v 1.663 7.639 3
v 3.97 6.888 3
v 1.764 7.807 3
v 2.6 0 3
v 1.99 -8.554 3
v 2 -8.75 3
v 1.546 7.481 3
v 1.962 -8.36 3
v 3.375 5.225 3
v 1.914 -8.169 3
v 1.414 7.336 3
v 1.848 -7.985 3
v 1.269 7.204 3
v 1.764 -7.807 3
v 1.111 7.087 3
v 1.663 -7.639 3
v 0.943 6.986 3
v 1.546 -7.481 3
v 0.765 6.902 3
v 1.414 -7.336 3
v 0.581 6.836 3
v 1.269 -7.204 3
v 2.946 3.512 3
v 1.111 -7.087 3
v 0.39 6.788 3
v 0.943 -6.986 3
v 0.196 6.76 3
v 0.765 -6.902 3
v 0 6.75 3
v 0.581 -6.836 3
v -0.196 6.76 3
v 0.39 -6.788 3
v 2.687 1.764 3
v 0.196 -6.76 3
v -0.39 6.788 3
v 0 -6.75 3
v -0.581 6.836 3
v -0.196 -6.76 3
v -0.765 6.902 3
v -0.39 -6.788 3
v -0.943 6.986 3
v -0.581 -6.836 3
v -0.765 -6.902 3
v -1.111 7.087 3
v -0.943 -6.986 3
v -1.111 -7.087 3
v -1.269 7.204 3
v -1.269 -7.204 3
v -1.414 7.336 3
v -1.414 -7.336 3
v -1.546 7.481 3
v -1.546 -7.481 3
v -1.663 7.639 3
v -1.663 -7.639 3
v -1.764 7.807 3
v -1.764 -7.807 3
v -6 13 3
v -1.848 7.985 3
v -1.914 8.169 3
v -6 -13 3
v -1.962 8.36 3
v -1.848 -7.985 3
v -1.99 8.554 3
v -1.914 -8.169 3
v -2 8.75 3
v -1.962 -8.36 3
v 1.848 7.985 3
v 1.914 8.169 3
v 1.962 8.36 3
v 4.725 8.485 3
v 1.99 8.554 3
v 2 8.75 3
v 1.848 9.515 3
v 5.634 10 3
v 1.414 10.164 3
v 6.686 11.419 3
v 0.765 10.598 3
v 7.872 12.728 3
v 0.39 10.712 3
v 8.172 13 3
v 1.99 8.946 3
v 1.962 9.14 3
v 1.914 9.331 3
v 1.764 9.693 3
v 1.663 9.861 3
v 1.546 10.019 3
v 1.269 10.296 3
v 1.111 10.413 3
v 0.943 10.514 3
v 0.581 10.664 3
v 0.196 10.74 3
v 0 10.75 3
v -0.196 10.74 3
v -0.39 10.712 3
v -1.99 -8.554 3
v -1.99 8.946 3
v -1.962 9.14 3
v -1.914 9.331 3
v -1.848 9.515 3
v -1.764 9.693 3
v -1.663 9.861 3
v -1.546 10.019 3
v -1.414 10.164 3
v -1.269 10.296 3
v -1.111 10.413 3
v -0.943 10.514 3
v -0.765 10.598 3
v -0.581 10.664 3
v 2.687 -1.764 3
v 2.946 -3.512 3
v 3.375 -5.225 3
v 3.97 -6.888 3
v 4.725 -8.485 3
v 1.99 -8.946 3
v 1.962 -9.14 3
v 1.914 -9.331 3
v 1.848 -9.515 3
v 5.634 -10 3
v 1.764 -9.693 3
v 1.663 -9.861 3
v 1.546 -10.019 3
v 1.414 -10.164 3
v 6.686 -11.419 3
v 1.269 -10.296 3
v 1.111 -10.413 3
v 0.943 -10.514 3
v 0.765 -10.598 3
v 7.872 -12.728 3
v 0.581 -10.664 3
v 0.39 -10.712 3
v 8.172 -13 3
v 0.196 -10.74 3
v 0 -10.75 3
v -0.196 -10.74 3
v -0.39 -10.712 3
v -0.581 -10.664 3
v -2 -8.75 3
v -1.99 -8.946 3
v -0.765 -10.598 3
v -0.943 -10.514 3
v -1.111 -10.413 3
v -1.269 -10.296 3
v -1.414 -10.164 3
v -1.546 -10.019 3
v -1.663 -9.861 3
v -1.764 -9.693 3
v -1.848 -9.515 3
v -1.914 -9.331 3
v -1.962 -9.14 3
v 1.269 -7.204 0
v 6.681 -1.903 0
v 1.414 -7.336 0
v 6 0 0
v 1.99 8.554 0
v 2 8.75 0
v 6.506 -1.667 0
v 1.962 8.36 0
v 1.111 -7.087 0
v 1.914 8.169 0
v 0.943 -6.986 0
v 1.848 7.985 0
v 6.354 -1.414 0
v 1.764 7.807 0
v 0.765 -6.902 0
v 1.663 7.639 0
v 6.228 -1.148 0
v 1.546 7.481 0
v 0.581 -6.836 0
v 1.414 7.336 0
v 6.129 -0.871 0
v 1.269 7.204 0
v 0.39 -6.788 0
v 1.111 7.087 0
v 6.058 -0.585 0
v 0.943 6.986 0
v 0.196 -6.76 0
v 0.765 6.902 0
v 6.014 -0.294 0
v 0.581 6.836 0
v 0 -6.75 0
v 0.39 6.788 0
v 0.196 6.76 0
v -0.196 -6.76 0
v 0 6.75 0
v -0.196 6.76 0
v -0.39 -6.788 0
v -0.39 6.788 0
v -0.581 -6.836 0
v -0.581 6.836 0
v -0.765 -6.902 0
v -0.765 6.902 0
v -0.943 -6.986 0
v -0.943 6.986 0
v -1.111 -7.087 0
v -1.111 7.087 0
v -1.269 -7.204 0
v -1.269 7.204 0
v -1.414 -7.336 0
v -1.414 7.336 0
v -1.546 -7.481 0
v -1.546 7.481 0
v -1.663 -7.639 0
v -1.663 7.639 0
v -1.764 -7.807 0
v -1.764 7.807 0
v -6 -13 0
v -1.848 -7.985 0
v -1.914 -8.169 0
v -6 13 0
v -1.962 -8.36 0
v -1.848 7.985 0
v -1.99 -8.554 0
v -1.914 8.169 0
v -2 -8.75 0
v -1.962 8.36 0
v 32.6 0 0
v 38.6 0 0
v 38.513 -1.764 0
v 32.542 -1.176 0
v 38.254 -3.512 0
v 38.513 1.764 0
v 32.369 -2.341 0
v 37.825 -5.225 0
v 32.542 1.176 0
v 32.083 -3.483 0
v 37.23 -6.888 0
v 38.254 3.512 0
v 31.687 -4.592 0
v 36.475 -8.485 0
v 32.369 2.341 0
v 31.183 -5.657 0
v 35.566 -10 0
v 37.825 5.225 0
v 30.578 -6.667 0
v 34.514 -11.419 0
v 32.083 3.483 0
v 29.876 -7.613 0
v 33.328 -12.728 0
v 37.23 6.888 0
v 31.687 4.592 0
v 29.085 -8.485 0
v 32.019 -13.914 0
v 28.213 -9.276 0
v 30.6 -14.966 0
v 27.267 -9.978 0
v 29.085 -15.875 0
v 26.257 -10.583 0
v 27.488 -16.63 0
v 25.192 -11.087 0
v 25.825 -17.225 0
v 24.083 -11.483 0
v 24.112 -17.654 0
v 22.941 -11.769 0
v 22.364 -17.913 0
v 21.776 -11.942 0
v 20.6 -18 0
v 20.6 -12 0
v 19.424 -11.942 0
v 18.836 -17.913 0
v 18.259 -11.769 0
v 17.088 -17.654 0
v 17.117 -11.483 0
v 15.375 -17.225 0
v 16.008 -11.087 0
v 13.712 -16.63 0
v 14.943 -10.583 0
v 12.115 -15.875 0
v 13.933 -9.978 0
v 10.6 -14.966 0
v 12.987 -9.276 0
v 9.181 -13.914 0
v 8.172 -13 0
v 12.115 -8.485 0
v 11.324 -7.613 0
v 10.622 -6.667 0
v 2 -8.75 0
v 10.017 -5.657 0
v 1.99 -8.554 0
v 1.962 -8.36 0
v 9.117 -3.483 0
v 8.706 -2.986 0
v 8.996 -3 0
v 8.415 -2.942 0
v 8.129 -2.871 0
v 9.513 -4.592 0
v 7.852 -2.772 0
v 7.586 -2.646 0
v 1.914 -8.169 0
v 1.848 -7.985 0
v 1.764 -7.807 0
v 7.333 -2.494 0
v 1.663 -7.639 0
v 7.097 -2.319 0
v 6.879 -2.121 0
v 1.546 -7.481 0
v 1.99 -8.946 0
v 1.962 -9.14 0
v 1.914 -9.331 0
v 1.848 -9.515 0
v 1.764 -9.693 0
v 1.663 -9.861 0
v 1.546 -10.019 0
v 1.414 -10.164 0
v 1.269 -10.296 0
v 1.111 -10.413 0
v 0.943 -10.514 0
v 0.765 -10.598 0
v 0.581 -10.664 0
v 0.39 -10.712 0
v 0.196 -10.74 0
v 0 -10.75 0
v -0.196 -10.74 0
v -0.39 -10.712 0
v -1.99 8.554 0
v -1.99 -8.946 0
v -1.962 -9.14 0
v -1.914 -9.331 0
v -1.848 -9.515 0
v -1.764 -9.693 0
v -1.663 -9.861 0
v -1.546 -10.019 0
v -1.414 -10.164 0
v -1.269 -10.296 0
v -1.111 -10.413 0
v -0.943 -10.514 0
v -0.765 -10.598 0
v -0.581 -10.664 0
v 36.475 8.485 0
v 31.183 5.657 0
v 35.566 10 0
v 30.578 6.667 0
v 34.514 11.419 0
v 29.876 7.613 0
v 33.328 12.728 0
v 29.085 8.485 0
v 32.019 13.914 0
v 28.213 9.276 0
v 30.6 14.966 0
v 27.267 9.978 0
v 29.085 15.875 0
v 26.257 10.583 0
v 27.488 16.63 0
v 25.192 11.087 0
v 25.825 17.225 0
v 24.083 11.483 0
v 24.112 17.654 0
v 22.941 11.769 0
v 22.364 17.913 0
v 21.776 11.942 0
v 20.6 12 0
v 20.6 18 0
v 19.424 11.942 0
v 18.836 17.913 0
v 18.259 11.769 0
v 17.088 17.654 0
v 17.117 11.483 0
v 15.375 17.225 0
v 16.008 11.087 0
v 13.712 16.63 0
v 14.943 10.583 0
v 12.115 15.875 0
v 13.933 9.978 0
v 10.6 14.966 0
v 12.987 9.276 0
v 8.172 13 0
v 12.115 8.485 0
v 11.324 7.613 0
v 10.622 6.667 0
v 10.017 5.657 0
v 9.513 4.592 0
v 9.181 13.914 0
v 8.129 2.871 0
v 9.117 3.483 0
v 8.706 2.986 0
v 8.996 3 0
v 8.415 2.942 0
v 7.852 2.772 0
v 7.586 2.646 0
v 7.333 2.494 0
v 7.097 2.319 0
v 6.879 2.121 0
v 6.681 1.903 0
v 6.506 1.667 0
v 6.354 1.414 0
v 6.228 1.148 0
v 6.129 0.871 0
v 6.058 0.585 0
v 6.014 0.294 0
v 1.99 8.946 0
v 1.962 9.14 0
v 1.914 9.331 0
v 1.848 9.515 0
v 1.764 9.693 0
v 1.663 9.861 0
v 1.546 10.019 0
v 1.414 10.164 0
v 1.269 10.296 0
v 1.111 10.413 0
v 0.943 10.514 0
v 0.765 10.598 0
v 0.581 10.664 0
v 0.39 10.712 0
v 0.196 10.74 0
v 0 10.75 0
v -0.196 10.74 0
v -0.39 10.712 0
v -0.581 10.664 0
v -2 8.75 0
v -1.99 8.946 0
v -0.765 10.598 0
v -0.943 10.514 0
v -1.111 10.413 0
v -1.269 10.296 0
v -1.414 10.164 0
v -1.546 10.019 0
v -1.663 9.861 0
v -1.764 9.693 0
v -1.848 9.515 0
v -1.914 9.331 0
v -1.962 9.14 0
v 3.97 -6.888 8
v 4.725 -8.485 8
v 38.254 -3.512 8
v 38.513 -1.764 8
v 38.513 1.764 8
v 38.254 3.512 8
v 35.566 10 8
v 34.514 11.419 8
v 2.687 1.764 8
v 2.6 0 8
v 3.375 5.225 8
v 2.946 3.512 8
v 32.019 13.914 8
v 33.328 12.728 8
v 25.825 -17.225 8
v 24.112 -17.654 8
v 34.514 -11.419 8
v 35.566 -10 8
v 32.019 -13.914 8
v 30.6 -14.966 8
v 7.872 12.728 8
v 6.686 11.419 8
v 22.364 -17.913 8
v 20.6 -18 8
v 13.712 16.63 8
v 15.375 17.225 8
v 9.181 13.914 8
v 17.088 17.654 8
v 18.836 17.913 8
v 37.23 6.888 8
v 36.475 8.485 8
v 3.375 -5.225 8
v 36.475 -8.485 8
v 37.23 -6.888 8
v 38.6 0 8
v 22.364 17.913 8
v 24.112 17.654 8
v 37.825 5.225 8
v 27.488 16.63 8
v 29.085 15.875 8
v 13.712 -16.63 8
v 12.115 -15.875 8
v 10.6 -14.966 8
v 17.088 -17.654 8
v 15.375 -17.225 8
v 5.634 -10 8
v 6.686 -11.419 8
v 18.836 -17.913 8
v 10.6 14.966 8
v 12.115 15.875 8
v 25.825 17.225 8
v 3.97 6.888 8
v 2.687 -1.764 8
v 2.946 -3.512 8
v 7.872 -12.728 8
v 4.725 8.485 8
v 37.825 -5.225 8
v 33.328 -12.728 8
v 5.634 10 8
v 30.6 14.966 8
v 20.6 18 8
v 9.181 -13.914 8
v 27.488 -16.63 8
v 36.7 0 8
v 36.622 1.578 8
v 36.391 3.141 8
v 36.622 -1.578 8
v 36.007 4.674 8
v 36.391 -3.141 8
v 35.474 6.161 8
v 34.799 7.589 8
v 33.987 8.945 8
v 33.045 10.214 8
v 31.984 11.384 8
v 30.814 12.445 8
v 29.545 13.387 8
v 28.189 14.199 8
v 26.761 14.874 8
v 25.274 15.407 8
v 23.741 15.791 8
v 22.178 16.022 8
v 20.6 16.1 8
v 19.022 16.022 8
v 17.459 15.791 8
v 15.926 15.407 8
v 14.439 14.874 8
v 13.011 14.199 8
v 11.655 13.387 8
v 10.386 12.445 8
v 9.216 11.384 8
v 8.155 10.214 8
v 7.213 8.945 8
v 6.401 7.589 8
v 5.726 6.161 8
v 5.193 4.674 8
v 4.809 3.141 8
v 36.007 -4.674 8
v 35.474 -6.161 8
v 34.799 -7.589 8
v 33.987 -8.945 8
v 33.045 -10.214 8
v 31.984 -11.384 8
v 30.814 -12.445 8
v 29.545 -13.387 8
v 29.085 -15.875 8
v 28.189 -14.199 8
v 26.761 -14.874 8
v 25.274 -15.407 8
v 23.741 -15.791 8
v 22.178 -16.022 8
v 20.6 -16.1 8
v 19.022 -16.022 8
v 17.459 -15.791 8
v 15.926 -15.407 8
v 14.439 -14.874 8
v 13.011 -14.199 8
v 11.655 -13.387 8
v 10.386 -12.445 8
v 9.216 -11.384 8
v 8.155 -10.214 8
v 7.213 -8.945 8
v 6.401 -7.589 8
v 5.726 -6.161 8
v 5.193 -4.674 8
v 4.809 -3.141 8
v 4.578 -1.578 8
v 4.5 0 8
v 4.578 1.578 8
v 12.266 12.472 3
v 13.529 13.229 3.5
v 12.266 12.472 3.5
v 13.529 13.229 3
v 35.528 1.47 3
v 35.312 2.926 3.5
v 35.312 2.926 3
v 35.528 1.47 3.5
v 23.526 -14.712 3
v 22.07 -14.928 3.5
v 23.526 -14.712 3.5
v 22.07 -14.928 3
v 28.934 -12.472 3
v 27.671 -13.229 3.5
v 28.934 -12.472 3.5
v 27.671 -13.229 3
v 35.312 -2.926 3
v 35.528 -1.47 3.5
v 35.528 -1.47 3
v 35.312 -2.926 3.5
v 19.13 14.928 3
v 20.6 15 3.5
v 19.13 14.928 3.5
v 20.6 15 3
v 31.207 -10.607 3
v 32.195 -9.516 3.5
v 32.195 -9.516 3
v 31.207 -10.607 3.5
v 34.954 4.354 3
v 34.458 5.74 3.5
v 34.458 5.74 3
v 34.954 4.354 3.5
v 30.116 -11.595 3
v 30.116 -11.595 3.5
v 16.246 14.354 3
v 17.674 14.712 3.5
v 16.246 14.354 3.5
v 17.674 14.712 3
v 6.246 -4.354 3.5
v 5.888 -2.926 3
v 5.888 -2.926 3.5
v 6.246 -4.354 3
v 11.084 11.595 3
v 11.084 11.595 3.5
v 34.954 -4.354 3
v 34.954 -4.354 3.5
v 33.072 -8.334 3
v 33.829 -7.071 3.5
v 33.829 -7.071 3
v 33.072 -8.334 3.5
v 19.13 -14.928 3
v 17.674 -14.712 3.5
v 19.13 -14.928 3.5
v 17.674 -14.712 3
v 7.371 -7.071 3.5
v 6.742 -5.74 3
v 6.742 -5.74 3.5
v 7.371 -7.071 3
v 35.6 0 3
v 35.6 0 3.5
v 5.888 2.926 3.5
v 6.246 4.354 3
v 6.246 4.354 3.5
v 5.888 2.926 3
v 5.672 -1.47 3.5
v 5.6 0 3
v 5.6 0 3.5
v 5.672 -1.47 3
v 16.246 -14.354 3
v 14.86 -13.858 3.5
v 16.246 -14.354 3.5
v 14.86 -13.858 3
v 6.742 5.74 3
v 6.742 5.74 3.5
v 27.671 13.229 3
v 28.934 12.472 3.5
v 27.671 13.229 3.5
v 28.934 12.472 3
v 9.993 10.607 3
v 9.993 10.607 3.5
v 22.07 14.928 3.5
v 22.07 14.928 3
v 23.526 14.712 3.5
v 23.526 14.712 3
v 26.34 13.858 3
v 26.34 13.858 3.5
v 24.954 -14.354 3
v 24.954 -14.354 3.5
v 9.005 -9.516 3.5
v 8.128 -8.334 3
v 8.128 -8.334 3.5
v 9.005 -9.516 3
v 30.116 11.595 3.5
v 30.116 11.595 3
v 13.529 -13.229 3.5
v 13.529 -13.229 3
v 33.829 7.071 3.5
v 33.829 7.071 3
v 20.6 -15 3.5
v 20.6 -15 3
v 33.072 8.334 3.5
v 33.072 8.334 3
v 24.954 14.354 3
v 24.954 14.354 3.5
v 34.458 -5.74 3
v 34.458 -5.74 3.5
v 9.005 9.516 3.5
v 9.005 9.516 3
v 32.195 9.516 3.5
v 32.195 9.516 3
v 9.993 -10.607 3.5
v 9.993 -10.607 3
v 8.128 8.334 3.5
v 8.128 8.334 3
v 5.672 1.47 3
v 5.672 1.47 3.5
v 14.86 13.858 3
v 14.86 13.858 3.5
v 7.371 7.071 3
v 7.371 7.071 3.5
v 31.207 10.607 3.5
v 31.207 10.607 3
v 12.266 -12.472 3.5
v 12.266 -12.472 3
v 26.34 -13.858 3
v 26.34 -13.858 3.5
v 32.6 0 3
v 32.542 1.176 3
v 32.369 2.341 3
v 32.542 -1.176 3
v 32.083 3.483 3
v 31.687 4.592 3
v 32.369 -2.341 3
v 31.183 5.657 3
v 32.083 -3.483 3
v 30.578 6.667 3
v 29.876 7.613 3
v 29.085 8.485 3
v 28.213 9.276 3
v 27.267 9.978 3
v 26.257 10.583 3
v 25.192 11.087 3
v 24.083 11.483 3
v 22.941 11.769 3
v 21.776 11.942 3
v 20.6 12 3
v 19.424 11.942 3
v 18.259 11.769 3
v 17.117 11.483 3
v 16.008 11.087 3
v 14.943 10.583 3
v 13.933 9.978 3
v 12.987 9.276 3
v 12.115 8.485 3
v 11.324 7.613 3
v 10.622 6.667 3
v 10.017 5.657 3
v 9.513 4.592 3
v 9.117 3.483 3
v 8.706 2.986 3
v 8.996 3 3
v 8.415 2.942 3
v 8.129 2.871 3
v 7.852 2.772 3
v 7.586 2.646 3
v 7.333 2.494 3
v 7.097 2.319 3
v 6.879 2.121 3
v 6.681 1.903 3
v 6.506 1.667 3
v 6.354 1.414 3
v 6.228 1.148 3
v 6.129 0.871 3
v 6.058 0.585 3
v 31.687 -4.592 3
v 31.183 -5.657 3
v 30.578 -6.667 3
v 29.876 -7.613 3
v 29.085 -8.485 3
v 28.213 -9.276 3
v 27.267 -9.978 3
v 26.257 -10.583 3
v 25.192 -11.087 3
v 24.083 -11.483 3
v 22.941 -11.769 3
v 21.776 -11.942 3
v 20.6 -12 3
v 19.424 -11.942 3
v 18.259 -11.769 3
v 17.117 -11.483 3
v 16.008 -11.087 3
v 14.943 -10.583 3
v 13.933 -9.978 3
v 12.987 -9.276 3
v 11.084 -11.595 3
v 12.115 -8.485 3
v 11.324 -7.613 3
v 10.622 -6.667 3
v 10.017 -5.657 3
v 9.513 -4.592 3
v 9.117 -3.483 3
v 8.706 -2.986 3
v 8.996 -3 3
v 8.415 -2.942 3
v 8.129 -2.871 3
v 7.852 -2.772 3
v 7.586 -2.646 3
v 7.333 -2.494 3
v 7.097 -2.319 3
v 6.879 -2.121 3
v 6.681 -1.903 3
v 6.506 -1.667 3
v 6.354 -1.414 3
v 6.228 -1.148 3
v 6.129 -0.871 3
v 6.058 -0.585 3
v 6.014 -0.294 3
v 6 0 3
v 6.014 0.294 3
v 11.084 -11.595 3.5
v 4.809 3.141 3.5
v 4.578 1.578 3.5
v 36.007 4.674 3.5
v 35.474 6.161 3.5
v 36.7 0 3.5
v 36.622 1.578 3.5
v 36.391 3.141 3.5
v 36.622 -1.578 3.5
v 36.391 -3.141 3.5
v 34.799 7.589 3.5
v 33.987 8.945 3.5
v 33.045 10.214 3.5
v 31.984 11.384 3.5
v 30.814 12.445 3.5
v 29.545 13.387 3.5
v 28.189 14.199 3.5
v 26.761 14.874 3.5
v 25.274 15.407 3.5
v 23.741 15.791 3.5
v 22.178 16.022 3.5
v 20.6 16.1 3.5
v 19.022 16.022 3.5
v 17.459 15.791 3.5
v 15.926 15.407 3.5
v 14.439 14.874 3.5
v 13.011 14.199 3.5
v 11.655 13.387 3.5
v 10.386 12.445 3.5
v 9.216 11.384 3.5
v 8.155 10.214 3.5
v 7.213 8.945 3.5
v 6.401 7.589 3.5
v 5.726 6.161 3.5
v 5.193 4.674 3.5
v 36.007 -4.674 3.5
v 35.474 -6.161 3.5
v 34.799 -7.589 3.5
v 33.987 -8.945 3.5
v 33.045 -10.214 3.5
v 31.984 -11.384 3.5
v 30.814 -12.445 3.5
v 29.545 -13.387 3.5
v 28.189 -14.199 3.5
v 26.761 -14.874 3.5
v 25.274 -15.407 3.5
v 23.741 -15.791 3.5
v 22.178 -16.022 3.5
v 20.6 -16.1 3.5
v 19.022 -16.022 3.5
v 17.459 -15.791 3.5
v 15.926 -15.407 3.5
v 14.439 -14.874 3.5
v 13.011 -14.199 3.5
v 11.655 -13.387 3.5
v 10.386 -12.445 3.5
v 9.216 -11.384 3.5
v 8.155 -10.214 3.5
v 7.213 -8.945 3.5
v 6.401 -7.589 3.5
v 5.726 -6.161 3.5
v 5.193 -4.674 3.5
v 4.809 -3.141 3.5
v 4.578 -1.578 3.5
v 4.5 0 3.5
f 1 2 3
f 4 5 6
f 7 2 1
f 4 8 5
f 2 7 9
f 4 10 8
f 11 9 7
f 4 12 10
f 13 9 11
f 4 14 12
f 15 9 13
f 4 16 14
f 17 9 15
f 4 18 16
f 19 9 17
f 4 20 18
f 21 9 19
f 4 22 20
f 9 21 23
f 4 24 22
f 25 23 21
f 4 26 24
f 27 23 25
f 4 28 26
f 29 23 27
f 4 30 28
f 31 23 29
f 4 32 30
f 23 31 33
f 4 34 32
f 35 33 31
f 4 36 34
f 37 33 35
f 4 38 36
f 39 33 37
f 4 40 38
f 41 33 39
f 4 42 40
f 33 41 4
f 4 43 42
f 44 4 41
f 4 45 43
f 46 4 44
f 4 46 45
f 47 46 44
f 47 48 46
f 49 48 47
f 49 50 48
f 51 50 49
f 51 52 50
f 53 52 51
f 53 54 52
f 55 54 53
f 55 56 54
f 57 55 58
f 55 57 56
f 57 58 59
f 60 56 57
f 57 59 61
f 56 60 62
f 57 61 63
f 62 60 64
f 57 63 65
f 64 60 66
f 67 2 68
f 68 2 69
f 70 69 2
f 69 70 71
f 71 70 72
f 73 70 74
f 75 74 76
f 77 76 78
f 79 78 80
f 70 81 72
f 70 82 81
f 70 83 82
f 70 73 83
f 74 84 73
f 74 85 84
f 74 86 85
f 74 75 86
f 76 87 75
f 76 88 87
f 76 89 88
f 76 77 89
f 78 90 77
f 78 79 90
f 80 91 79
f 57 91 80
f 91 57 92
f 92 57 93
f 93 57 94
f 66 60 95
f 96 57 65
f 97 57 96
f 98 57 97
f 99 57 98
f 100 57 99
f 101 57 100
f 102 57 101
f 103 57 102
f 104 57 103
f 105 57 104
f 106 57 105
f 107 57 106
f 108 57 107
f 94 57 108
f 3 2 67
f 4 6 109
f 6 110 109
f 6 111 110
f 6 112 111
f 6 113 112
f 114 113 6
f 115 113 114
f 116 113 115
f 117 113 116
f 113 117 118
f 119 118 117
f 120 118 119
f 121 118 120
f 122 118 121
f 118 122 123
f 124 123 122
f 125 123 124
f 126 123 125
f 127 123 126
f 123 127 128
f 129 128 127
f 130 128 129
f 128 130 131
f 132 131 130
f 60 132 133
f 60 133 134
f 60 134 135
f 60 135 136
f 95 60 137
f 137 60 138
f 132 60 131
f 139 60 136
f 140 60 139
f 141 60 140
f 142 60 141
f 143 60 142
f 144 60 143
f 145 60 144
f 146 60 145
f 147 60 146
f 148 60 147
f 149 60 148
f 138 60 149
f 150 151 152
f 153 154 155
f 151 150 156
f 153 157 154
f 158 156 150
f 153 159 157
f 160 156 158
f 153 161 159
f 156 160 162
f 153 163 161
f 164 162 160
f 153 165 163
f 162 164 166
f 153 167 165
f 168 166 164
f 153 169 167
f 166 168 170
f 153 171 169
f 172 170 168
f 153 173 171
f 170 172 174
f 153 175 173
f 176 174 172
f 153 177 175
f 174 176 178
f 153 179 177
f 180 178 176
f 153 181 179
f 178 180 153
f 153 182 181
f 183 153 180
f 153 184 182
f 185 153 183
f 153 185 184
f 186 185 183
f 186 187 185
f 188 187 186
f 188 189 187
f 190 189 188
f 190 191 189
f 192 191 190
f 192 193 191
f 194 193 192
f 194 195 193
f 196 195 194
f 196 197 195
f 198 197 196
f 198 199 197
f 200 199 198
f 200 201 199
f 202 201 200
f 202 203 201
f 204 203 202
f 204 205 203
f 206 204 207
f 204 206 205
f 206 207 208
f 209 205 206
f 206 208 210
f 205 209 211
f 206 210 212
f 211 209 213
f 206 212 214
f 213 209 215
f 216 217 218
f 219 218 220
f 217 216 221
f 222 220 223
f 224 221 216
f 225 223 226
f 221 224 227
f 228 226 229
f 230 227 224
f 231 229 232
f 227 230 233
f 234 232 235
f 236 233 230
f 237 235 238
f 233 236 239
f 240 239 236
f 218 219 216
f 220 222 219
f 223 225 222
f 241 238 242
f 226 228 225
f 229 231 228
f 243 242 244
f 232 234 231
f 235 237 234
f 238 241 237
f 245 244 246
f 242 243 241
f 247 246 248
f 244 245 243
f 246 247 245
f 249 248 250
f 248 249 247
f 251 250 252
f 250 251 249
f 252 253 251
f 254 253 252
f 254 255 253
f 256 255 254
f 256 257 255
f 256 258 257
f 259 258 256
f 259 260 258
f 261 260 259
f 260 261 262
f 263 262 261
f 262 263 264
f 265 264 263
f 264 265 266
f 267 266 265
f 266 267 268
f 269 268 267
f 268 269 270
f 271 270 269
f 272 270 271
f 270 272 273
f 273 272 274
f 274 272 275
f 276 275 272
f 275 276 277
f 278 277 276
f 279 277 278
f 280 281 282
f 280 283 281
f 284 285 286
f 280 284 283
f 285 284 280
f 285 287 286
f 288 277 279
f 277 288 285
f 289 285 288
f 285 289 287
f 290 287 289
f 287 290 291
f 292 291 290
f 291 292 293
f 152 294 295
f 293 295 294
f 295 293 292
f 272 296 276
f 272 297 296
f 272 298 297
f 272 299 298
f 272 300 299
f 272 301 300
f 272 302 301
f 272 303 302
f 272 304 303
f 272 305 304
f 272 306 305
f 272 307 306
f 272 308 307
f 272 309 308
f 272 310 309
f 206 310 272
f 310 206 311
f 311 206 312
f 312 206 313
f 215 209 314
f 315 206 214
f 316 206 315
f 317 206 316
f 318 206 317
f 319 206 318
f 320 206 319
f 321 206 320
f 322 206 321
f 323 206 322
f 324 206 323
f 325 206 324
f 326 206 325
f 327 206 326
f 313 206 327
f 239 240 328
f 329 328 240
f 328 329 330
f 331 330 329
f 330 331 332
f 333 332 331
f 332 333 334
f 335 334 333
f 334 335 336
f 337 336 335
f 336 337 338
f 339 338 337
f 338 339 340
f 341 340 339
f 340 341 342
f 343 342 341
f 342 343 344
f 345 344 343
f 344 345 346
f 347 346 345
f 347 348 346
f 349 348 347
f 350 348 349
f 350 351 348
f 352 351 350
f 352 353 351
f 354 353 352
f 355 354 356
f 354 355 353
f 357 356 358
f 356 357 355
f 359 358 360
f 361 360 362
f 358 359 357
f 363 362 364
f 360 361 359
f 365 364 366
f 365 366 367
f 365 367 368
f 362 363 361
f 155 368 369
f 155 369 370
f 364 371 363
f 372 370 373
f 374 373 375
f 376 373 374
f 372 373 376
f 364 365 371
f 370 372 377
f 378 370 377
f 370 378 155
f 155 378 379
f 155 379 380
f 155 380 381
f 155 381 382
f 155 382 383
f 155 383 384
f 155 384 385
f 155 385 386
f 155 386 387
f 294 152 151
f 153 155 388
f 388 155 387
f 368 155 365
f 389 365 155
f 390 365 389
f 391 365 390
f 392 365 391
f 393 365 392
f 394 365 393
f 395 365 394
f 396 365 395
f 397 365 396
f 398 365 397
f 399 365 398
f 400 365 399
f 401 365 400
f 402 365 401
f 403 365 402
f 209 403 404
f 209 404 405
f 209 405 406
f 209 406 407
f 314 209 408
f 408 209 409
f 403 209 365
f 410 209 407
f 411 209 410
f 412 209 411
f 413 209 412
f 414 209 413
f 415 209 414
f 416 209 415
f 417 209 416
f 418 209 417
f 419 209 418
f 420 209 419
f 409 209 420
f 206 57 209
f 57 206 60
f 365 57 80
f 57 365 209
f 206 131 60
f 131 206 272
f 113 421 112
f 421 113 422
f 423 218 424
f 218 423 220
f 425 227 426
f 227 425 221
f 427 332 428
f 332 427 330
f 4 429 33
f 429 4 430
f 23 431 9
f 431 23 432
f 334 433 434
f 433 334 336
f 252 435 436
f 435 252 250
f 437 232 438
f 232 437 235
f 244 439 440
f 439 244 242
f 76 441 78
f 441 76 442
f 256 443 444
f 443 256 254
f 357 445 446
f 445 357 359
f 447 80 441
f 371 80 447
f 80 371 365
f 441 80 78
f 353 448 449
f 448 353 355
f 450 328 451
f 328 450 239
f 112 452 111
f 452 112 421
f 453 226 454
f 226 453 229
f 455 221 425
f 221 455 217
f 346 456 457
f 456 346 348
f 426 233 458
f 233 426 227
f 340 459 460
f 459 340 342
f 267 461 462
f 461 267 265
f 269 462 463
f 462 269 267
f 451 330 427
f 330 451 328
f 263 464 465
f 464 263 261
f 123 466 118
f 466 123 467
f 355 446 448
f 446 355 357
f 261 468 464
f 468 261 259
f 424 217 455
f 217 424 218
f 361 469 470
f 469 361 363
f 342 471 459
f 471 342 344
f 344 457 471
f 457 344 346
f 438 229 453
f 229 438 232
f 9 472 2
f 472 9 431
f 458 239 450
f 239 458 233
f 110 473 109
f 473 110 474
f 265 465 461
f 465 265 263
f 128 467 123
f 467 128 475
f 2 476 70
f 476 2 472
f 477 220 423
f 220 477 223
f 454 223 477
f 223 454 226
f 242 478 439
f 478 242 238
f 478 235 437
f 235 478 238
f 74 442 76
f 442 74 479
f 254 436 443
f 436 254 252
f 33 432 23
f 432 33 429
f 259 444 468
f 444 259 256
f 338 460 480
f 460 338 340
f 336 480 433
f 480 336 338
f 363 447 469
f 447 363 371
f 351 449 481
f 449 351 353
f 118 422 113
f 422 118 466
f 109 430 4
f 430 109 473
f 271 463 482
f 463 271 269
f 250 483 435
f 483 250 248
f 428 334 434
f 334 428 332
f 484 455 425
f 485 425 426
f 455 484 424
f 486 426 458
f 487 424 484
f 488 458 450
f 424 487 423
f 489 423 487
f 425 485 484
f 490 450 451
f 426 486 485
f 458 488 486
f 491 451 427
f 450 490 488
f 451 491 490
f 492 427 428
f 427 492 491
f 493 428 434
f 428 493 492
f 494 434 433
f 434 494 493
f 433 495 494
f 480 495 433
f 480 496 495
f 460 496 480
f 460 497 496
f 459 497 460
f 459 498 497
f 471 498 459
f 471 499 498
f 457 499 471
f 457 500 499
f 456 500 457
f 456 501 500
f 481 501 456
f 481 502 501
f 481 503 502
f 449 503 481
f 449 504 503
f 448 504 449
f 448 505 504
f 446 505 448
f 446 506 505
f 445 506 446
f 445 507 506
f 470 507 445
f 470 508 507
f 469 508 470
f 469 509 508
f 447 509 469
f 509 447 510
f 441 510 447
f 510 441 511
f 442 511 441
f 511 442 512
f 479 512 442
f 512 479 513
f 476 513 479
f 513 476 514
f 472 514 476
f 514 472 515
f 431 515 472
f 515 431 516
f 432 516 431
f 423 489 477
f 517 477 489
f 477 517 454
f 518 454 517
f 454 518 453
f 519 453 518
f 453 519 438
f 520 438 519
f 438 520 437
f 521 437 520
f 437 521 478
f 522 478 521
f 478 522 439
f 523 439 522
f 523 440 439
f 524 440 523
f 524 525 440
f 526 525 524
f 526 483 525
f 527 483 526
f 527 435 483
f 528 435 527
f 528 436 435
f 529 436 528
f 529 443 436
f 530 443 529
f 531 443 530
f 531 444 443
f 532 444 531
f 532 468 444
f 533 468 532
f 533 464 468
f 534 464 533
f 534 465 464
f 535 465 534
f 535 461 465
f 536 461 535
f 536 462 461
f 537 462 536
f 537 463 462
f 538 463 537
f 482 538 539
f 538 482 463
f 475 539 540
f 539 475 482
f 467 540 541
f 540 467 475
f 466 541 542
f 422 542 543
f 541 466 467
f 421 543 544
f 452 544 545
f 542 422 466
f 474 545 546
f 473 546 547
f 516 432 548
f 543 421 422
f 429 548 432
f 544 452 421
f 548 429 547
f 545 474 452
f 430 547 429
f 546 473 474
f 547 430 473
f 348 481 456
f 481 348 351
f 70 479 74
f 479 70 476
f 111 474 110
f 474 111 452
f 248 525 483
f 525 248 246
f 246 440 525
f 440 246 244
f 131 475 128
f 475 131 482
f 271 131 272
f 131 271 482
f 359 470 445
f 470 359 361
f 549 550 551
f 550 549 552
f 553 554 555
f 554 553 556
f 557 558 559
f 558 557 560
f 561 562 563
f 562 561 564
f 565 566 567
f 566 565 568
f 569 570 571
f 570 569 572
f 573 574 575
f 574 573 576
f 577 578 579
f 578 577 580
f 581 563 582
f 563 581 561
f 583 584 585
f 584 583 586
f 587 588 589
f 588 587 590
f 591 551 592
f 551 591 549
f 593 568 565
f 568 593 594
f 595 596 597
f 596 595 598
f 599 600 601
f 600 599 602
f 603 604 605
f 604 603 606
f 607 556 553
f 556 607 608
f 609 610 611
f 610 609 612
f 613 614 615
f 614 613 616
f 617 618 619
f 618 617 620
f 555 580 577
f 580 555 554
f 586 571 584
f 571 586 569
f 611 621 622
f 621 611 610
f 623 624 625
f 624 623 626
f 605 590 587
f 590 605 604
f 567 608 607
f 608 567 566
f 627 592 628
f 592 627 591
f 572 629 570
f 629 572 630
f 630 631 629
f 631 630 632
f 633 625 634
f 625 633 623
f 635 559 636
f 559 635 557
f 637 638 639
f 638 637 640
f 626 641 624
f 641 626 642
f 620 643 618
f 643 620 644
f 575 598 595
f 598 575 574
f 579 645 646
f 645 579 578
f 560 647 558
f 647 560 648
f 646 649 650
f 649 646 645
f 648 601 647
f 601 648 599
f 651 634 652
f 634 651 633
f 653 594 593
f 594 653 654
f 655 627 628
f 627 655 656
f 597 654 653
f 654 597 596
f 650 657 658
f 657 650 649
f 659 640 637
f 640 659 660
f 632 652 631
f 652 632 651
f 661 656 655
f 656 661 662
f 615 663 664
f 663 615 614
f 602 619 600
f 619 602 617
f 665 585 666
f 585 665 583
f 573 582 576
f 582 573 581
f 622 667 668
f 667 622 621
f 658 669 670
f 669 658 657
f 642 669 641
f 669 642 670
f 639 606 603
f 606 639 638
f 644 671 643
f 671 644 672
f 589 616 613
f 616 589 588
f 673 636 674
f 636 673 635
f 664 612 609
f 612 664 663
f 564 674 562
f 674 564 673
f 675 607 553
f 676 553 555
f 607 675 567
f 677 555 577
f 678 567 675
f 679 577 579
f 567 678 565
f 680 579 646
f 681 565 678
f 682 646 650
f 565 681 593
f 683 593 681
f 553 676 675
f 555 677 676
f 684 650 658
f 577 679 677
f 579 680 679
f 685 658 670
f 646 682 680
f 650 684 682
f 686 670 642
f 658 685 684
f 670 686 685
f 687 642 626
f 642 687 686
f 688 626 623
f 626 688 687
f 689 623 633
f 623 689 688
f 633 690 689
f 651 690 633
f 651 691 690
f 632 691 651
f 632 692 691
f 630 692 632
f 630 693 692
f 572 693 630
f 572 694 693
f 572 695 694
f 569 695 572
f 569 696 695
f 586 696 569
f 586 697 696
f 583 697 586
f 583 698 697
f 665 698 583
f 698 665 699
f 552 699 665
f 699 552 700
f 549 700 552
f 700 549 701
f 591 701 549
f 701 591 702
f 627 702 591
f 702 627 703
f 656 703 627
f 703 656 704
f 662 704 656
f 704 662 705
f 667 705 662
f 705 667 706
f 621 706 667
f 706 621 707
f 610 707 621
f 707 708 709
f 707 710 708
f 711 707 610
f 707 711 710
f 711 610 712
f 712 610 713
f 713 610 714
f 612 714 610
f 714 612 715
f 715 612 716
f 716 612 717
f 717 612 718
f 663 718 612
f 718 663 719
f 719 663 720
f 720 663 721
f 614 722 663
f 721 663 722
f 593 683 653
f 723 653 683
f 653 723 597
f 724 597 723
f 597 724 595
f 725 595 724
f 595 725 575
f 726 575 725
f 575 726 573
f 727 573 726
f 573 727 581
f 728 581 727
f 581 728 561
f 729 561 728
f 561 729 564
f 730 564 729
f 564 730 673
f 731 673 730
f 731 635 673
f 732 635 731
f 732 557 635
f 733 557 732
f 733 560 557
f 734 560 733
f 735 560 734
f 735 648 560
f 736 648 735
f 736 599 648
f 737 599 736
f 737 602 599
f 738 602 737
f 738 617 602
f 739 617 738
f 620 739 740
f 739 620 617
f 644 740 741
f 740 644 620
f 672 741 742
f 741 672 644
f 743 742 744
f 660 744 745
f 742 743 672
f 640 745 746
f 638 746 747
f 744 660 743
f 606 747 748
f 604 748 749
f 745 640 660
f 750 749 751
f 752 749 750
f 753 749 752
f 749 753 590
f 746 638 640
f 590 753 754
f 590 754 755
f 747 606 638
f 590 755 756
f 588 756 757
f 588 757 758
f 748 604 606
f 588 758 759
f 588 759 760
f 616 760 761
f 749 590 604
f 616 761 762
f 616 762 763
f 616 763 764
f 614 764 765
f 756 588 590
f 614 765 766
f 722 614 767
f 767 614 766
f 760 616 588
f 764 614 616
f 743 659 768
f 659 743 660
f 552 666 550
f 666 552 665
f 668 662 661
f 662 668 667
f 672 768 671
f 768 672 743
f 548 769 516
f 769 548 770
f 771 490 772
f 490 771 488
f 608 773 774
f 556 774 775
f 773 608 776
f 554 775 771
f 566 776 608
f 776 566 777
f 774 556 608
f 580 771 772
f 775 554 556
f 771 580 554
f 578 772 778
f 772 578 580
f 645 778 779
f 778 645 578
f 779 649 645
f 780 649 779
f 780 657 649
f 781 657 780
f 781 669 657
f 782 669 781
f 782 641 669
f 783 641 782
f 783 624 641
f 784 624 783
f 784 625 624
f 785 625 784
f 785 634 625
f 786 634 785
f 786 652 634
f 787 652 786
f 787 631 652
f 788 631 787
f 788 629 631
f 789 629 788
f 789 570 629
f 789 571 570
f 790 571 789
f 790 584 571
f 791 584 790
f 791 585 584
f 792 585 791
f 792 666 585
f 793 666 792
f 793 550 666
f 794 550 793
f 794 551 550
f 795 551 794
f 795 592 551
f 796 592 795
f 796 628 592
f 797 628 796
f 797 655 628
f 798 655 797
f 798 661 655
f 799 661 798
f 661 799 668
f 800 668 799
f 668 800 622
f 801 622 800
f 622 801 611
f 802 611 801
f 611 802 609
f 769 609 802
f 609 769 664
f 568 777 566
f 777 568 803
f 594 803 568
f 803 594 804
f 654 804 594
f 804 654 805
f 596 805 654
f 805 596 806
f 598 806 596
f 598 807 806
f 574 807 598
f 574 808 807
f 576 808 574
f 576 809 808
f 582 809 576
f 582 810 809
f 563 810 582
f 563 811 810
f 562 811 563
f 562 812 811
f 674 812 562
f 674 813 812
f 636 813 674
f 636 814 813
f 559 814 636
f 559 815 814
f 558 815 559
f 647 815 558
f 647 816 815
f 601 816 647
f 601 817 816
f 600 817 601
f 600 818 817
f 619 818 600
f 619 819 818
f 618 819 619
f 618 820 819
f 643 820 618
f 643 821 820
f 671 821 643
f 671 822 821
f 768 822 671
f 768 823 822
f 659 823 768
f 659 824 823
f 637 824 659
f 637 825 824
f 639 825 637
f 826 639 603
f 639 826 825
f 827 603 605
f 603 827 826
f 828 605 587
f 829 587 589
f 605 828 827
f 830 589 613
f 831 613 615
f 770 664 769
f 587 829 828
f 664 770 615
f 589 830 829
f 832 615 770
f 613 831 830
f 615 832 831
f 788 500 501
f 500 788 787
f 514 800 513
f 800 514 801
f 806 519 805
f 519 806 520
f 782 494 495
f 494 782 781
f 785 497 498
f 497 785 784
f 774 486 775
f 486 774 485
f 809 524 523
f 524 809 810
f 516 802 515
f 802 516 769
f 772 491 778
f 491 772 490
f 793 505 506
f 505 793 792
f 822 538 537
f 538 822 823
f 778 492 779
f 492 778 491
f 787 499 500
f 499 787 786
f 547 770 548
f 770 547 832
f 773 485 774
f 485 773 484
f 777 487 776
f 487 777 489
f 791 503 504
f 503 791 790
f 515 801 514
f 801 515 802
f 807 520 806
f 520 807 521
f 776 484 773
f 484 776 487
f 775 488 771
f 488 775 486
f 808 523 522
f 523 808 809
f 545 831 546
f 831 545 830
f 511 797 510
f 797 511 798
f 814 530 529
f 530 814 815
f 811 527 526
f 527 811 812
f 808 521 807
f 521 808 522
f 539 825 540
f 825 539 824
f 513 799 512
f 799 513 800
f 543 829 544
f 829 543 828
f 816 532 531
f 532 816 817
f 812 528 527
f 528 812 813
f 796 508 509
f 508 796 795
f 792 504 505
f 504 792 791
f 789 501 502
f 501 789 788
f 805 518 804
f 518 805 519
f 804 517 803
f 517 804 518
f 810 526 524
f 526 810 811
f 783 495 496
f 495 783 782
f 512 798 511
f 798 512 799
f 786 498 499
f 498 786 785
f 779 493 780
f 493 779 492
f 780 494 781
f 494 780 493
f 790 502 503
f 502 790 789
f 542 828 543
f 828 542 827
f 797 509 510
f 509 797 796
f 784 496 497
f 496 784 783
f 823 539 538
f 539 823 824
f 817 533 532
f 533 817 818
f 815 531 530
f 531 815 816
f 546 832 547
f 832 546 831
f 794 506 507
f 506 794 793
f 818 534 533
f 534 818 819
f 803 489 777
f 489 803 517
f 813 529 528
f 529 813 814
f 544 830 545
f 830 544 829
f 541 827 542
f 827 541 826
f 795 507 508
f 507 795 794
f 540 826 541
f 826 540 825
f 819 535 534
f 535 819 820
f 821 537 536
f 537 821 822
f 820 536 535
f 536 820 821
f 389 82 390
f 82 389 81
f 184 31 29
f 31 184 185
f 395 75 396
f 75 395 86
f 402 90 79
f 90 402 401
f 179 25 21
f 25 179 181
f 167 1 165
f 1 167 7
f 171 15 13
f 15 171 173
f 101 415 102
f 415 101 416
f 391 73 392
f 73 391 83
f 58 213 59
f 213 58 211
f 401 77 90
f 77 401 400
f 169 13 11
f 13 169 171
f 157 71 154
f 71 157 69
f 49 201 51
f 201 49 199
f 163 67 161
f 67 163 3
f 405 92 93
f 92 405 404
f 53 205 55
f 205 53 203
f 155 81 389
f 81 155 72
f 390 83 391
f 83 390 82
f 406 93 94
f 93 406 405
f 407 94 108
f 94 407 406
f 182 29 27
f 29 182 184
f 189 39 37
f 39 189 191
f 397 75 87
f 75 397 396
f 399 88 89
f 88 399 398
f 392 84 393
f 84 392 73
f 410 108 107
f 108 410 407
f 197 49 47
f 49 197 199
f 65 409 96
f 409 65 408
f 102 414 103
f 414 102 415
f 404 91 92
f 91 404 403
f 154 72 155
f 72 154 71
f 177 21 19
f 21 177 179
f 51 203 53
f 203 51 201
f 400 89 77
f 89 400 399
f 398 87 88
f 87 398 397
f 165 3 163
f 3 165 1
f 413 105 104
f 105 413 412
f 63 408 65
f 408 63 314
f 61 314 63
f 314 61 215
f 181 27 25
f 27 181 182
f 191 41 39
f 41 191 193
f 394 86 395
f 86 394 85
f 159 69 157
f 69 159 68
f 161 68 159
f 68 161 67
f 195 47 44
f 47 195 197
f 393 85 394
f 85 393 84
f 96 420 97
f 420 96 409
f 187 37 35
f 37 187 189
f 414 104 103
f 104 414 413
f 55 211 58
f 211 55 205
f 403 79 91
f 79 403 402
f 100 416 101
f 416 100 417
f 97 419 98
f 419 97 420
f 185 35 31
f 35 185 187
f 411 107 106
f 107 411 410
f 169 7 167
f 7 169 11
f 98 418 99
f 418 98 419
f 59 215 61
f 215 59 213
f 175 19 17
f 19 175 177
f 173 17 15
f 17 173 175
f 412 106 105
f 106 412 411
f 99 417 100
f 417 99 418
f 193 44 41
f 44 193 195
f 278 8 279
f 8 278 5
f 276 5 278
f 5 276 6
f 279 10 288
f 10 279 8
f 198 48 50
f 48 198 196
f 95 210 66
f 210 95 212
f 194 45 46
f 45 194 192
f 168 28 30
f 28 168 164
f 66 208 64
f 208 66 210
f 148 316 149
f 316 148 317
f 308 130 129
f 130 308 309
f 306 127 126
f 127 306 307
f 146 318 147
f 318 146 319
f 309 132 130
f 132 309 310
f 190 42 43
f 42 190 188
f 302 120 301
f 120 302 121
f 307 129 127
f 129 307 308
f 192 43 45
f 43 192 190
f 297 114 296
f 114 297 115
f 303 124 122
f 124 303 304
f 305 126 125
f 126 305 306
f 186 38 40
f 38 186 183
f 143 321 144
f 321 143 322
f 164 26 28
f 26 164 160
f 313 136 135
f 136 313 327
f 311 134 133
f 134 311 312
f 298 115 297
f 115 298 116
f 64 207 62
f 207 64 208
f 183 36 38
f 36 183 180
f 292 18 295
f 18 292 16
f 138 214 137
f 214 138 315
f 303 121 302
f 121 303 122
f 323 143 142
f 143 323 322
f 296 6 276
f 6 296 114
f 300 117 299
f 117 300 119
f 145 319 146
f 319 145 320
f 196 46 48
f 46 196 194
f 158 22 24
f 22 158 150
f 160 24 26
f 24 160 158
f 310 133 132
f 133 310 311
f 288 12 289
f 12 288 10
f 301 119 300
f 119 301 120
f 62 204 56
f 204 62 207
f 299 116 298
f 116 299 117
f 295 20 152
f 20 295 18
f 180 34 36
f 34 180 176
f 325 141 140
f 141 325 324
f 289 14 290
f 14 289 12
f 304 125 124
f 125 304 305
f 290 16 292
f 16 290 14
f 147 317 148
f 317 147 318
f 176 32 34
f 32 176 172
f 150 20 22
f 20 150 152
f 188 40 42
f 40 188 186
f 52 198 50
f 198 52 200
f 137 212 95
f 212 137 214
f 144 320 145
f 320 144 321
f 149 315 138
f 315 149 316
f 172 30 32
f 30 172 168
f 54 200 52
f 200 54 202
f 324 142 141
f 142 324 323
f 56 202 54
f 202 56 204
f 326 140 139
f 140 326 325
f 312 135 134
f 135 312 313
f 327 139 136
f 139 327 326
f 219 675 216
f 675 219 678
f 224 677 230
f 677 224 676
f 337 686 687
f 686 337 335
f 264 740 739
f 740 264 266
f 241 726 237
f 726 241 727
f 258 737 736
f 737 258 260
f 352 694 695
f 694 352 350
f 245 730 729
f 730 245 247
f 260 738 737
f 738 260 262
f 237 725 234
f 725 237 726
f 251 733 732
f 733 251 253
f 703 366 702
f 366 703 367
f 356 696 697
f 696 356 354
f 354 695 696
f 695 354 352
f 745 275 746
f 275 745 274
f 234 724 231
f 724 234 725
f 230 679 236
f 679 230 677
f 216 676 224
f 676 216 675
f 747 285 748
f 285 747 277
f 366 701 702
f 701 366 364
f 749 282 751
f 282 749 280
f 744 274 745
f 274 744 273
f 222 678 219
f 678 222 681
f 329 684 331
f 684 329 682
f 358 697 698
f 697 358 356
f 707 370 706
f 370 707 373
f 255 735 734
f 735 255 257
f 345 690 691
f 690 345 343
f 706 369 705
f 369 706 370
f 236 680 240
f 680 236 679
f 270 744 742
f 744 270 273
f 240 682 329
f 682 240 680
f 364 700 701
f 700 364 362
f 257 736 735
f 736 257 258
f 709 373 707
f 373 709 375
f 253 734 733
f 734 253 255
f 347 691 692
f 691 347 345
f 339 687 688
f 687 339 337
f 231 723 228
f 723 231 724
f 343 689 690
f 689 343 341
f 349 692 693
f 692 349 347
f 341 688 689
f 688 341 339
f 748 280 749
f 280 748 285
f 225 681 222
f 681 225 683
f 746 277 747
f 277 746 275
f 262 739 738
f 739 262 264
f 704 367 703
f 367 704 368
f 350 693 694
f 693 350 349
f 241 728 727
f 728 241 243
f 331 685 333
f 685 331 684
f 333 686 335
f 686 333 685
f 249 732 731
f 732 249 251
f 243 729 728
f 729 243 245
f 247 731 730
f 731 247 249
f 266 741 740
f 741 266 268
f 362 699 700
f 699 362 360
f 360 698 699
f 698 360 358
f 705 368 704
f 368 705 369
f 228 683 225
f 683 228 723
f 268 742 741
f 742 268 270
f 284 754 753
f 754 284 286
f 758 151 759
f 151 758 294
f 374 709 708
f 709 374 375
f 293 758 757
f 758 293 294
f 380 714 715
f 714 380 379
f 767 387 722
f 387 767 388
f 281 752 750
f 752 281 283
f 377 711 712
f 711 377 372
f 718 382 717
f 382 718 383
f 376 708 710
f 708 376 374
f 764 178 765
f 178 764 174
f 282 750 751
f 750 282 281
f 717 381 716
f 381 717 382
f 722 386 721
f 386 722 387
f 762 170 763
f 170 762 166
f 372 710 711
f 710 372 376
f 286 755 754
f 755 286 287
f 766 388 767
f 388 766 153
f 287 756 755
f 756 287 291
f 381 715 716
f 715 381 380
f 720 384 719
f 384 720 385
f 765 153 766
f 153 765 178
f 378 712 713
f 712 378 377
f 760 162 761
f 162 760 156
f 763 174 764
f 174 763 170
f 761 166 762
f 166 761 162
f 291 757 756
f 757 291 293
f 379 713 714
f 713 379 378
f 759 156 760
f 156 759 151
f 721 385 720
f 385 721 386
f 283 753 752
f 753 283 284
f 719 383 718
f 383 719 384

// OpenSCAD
/* Copyright (c) 2022  Paulo Costa
   All rights reserved.

   Redistribution and use in source and binary forms, with or without
   modification, are permitted provided that the following conditions are met:

   * Redistributions of source code must retain the above copyright
     notice, this list of conditions and the following disclaimer.
   * Redistributions in binary form must reproduce the above copyright
     notice, this list of conditions and the following disclaimer in
     the documentation and/or other materials provided with the
     distribution.
   * Neither the name of the copyright holders nor the names of
     contributors may be used to endorse or promote products derived
     from this software without specific prior written permission.

  THIS SOFTWARE IS PROVIDED BY THE COPYRIGHT HOLDERS AND CONTRIBUTORS "AS IS"
  AND ANY EXPRESS OR IMPLIED WARRANTIES, INCLUDING, BUT NOT LIMITED TO, THE
  IMPLIED WARRANTIES OF MERCHANTABILITY AND FITNESS FOR A PARTICULAR PURPOSE
  ARE DISCLAIMED. IN NO EVENT SHALL THE COPYRIGHT OWNER OR CONTRIBUTORS BE
  LIABLE FOR ANY DIRECT, INDIRECT, INCIDENTAL, SPECIAL, EXEMPLARY, OR
  CONSEQUENTIAL DAMAGES (INCLUDING, BUT NOT LIMITED TO, PROCUREMENT OF
  SUBSTITUTE GOODS OR SERVICES; LOSS OF USE, DATA, OR PROFITS; OR BUSINESS
  INTERRUPTION) HOWEVER CAUSED AND ON ANY THEORY OF LIABILITY, WHETHER IN
  CONTRACT, STRICT LIABILITY, OR TORT (INCLUDING NEGLIGENCE OR OTHERWISE)
  ARISING IN ANY WAY OUT OF THE USE OF THIS SOFTWARE, EVEN IF ADVISED OF THE
  POSSIBILITY OF SUCH DAMAGE. */

hh_dist = 20.6;
bear_w = 32;
wall = 2;
wall_h = 8;

dx = 38;
dy = 26;
dh = 3;

hdisp = 17.5;

eps = 0.2;

module yellow_motor_bearing() {
  $fn = 64;
  difference() {
    union() {
      translate([dx/2 - 6, 0, dh/2])
      cube([dx, dy, dh], center = true);
      
      translate([hh_dist, 0, 0])
      cylinder(d = bear_w + 2 * wall, h = wall_h, center = false);

    }

    translate([hh_dist, 0, dh])
    cylinder(d = bear_w - 2, h = wall_h, center = false);
    
    translate([hh_dist, 0, dh + 0.5])
    cylinder(d = bear_w + eps, h = wall_h, center = false);
     
    // fixing holes
    translate([0, hdisp/2, 0])
    cylinder(d = 4, h = 3 * dh, center = true);

    translate([0, -hdisp/2, 0])
    cylinder(d = 4, h = 3 * dh, center = true);

    // axis hole
    translate([hh_dist, 0, 0])
    cylinder(d = 24, h = 10 * dh, center = true);
    
    // bump hole
    translate([9, 0, 0])
    cylinder(d = 6, h = 10 * dh, center = true);


  }
}

yellow_motor_bearing();
